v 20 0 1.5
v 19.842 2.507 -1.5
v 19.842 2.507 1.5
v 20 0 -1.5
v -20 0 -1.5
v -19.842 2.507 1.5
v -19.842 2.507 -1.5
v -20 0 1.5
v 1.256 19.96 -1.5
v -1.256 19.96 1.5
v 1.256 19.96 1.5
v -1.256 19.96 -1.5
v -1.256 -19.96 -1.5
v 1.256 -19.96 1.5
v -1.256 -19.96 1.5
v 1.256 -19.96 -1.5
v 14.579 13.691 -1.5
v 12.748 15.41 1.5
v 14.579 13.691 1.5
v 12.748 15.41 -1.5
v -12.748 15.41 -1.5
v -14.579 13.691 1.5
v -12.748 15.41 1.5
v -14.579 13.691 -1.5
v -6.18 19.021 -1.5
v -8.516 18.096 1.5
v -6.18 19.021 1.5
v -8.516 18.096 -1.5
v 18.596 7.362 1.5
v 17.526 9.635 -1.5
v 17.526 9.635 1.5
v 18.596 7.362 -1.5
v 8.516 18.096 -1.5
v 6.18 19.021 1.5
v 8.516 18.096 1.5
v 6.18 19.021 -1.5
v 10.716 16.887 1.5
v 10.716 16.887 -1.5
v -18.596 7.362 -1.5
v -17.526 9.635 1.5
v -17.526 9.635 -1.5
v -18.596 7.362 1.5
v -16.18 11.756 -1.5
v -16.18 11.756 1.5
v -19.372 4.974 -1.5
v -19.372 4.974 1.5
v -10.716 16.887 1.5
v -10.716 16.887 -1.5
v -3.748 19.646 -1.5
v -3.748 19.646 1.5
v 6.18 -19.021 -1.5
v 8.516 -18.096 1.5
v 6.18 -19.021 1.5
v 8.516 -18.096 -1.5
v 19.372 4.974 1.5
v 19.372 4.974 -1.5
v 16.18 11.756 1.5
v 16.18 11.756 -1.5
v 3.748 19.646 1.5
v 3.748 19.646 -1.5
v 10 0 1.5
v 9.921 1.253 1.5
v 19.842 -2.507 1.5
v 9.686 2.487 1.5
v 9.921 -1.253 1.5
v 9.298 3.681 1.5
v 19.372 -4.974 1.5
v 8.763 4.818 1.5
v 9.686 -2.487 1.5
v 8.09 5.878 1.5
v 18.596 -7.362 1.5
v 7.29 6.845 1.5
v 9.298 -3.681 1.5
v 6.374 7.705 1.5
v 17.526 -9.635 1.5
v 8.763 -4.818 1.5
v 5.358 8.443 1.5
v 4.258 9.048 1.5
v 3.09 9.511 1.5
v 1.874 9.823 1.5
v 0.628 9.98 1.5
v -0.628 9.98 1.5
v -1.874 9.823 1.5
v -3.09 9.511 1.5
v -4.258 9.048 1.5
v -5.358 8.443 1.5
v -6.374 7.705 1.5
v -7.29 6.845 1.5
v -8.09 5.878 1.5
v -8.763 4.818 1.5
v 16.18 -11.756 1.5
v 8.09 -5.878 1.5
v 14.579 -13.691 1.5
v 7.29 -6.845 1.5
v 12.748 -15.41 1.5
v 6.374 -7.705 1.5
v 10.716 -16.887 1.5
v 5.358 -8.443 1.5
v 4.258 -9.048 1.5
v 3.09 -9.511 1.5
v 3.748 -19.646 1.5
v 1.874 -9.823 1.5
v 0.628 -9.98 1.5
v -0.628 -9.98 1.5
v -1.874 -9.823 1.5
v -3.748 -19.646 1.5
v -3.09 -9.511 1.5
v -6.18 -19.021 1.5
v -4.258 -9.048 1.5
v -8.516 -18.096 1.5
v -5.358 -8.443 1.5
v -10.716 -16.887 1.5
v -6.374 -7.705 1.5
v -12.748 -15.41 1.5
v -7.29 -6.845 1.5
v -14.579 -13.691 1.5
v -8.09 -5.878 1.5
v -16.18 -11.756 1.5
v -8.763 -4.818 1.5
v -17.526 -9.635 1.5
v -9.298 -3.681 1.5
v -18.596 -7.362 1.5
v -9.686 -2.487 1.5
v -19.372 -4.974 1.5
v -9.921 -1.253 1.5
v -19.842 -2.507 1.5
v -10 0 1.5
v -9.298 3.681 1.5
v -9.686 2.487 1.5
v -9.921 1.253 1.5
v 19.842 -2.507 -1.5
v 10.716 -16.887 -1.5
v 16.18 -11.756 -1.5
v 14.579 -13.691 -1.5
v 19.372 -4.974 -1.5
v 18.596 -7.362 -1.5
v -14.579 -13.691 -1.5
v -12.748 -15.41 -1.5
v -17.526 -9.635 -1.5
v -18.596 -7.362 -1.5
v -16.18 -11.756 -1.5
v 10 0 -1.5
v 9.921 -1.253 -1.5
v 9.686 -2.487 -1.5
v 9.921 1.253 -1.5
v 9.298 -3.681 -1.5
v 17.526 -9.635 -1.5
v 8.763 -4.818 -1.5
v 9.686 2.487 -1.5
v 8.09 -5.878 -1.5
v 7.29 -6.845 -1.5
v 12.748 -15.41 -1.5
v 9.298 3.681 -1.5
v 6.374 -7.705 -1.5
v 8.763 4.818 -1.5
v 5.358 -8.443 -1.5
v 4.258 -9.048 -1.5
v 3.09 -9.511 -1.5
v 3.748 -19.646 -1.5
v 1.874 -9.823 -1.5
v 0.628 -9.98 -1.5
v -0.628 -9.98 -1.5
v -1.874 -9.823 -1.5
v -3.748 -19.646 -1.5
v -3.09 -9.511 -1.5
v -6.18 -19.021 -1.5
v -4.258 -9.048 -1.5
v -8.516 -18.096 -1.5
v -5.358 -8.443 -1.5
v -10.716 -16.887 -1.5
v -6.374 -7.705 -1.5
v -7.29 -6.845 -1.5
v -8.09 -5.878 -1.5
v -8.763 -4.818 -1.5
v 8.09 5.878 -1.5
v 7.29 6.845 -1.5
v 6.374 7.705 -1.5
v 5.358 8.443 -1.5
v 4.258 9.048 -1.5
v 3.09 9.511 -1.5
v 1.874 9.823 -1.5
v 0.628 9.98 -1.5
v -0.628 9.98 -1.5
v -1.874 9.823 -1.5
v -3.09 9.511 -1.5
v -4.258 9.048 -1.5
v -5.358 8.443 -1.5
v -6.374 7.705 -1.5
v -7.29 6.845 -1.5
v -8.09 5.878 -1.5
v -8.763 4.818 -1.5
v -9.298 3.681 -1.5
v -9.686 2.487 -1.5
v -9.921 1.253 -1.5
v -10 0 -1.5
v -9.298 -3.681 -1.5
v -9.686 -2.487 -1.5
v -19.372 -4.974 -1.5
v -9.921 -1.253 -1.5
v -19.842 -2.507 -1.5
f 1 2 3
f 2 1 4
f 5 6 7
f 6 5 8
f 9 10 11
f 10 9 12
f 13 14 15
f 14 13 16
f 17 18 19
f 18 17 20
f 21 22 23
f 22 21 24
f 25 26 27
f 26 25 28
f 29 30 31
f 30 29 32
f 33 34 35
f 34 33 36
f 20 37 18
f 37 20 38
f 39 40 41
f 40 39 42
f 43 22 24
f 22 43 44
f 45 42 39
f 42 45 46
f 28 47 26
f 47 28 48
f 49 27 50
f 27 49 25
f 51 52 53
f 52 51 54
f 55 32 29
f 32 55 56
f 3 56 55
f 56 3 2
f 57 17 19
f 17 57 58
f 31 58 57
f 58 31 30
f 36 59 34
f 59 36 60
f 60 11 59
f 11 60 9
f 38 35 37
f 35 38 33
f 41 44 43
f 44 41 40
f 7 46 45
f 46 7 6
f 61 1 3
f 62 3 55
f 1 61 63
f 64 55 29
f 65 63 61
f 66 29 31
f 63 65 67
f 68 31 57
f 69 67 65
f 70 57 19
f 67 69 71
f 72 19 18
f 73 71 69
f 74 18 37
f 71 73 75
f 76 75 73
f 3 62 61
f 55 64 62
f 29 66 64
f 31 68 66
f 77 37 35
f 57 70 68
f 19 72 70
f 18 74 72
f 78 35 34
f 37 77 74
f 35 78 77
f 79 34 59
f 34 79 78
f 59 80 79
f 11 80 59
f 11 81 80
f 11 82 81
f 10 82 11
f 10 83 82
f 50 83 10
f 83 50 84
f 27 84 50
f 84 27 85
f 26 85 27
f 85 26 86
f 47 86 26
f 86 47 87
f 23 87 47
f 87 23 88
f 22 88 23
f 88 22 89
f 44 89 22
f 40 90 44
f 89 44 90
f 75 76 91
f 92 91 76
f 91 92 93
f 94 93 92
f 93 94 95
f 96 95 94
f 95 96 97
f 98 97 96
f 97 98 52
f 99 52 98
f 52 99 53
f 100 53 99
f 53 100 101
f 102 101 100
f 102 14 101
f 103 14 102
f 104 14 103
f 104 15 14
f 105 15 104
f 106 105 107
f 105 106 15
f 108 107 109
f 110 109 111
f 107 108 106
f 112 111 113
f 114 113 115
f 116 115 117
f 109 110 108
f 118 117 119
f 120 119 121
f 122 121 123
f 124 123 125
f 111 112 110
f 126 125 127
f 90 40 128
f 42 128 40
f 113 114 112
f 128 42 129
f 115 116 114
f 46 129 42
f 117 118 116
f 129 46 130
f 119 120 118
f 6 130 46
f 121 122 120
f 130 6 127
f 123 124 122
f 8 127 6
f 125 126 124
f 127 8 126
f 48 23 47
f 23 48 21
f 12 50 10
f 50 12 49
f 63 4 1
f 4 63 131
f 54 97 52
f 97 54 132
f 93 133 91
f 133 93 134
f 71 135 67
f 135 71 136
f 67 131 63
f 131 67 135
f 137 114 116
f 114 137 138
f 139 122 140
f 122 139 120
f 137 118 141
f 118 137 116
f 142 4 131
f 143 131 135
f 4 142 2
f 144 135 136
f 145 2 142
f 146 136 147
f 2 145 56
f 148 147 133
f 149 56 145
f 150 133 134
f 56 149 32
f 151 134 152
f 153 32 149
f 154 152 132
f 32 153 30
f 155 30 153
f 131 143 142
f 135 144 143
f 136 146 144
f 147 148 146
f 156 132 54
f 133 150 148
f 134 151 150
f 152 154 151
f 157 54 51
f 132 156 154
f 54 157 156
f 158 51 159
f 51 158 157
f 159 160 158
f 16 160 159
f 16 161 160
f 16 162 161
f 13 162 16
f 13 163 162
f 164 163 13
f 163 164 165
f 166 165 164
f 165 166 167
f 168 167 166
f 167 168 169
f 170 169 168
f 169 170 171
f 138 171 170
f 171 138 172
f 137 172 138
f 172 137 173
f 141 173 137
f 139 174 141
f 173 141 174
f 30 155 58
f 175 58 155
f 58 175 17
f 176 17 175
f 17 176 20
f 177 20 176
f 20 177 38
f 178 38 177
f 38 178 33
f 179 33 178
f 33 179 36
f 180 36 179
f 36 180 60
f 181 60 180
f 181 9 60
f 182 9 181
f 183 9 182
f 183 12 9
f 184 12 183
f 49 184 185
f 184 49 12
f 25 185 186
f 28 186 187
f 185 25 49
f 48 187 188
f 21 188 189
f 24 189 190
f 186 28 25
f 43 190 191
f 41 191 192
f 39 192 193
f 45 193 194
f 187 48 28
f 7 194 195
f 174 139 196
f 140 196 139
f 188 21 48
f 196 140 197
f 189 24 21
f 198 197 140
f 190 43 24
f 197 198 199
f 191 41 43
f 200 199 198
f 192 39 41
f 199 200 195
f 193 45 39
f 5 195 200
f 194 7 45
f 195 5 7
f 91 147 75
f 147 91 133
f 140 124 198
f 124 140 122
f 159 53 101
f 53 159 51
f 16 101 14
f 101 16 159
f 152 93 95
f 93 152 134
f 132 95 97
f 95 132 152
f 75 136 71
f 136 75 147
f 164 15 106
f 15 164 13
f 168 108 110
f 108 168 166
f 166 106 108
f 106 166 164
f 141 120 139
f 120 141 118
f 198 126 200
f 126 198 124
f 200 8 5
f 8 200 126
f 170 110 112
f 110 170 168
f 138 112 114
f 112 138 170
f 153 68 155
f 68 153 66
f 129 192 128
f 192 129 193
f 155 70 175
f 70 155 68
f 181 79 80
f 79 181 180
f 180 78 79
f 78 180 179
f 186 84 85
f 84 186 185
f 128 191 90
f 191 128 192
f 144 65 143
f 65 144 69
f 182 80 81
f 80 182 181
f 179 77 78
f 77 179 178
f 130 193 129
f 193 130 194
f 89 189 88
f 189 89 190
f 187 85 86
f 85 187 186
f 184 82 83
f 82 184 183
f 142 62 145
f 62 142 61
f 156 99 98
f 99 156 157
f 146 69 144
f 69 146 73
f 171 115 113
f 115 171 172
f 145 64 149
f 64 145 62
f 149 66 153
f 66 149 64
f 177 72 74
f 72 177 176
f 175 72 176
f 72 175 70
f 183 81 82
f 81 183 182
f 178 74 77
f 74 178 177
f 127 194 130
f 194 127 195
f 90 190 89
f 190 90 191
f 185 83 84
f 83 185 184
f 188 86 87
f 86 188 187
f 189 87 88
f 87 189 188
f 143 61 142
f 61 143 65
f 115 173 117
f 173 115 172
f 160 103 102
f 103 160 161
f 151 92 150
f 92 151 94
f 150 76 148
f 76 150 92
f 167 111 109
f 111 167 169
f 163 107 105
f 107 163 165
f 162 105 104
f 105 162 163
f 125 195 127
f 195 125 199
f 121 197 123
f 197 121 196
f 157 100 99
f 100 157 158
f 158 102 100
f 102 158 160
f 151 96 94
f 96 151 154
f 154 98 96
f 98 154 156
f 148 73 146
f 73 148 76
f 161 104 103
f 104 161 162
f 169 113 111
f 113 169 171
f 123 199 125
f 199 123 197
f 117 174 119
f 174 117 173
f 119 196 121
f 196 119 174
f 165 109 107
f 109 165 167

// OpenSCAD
$fn = 50;


difference() {
	union() {
		translate(v = [0, 0, -1.5000000000]) {
			cylinder(h = 3, r = 20.0000000000);
		}
	}
	union() {
		translate(v = [0, 0, -100.0000000000]) {
			cylinder(h = 200, r = 10);
		}
	}
}
